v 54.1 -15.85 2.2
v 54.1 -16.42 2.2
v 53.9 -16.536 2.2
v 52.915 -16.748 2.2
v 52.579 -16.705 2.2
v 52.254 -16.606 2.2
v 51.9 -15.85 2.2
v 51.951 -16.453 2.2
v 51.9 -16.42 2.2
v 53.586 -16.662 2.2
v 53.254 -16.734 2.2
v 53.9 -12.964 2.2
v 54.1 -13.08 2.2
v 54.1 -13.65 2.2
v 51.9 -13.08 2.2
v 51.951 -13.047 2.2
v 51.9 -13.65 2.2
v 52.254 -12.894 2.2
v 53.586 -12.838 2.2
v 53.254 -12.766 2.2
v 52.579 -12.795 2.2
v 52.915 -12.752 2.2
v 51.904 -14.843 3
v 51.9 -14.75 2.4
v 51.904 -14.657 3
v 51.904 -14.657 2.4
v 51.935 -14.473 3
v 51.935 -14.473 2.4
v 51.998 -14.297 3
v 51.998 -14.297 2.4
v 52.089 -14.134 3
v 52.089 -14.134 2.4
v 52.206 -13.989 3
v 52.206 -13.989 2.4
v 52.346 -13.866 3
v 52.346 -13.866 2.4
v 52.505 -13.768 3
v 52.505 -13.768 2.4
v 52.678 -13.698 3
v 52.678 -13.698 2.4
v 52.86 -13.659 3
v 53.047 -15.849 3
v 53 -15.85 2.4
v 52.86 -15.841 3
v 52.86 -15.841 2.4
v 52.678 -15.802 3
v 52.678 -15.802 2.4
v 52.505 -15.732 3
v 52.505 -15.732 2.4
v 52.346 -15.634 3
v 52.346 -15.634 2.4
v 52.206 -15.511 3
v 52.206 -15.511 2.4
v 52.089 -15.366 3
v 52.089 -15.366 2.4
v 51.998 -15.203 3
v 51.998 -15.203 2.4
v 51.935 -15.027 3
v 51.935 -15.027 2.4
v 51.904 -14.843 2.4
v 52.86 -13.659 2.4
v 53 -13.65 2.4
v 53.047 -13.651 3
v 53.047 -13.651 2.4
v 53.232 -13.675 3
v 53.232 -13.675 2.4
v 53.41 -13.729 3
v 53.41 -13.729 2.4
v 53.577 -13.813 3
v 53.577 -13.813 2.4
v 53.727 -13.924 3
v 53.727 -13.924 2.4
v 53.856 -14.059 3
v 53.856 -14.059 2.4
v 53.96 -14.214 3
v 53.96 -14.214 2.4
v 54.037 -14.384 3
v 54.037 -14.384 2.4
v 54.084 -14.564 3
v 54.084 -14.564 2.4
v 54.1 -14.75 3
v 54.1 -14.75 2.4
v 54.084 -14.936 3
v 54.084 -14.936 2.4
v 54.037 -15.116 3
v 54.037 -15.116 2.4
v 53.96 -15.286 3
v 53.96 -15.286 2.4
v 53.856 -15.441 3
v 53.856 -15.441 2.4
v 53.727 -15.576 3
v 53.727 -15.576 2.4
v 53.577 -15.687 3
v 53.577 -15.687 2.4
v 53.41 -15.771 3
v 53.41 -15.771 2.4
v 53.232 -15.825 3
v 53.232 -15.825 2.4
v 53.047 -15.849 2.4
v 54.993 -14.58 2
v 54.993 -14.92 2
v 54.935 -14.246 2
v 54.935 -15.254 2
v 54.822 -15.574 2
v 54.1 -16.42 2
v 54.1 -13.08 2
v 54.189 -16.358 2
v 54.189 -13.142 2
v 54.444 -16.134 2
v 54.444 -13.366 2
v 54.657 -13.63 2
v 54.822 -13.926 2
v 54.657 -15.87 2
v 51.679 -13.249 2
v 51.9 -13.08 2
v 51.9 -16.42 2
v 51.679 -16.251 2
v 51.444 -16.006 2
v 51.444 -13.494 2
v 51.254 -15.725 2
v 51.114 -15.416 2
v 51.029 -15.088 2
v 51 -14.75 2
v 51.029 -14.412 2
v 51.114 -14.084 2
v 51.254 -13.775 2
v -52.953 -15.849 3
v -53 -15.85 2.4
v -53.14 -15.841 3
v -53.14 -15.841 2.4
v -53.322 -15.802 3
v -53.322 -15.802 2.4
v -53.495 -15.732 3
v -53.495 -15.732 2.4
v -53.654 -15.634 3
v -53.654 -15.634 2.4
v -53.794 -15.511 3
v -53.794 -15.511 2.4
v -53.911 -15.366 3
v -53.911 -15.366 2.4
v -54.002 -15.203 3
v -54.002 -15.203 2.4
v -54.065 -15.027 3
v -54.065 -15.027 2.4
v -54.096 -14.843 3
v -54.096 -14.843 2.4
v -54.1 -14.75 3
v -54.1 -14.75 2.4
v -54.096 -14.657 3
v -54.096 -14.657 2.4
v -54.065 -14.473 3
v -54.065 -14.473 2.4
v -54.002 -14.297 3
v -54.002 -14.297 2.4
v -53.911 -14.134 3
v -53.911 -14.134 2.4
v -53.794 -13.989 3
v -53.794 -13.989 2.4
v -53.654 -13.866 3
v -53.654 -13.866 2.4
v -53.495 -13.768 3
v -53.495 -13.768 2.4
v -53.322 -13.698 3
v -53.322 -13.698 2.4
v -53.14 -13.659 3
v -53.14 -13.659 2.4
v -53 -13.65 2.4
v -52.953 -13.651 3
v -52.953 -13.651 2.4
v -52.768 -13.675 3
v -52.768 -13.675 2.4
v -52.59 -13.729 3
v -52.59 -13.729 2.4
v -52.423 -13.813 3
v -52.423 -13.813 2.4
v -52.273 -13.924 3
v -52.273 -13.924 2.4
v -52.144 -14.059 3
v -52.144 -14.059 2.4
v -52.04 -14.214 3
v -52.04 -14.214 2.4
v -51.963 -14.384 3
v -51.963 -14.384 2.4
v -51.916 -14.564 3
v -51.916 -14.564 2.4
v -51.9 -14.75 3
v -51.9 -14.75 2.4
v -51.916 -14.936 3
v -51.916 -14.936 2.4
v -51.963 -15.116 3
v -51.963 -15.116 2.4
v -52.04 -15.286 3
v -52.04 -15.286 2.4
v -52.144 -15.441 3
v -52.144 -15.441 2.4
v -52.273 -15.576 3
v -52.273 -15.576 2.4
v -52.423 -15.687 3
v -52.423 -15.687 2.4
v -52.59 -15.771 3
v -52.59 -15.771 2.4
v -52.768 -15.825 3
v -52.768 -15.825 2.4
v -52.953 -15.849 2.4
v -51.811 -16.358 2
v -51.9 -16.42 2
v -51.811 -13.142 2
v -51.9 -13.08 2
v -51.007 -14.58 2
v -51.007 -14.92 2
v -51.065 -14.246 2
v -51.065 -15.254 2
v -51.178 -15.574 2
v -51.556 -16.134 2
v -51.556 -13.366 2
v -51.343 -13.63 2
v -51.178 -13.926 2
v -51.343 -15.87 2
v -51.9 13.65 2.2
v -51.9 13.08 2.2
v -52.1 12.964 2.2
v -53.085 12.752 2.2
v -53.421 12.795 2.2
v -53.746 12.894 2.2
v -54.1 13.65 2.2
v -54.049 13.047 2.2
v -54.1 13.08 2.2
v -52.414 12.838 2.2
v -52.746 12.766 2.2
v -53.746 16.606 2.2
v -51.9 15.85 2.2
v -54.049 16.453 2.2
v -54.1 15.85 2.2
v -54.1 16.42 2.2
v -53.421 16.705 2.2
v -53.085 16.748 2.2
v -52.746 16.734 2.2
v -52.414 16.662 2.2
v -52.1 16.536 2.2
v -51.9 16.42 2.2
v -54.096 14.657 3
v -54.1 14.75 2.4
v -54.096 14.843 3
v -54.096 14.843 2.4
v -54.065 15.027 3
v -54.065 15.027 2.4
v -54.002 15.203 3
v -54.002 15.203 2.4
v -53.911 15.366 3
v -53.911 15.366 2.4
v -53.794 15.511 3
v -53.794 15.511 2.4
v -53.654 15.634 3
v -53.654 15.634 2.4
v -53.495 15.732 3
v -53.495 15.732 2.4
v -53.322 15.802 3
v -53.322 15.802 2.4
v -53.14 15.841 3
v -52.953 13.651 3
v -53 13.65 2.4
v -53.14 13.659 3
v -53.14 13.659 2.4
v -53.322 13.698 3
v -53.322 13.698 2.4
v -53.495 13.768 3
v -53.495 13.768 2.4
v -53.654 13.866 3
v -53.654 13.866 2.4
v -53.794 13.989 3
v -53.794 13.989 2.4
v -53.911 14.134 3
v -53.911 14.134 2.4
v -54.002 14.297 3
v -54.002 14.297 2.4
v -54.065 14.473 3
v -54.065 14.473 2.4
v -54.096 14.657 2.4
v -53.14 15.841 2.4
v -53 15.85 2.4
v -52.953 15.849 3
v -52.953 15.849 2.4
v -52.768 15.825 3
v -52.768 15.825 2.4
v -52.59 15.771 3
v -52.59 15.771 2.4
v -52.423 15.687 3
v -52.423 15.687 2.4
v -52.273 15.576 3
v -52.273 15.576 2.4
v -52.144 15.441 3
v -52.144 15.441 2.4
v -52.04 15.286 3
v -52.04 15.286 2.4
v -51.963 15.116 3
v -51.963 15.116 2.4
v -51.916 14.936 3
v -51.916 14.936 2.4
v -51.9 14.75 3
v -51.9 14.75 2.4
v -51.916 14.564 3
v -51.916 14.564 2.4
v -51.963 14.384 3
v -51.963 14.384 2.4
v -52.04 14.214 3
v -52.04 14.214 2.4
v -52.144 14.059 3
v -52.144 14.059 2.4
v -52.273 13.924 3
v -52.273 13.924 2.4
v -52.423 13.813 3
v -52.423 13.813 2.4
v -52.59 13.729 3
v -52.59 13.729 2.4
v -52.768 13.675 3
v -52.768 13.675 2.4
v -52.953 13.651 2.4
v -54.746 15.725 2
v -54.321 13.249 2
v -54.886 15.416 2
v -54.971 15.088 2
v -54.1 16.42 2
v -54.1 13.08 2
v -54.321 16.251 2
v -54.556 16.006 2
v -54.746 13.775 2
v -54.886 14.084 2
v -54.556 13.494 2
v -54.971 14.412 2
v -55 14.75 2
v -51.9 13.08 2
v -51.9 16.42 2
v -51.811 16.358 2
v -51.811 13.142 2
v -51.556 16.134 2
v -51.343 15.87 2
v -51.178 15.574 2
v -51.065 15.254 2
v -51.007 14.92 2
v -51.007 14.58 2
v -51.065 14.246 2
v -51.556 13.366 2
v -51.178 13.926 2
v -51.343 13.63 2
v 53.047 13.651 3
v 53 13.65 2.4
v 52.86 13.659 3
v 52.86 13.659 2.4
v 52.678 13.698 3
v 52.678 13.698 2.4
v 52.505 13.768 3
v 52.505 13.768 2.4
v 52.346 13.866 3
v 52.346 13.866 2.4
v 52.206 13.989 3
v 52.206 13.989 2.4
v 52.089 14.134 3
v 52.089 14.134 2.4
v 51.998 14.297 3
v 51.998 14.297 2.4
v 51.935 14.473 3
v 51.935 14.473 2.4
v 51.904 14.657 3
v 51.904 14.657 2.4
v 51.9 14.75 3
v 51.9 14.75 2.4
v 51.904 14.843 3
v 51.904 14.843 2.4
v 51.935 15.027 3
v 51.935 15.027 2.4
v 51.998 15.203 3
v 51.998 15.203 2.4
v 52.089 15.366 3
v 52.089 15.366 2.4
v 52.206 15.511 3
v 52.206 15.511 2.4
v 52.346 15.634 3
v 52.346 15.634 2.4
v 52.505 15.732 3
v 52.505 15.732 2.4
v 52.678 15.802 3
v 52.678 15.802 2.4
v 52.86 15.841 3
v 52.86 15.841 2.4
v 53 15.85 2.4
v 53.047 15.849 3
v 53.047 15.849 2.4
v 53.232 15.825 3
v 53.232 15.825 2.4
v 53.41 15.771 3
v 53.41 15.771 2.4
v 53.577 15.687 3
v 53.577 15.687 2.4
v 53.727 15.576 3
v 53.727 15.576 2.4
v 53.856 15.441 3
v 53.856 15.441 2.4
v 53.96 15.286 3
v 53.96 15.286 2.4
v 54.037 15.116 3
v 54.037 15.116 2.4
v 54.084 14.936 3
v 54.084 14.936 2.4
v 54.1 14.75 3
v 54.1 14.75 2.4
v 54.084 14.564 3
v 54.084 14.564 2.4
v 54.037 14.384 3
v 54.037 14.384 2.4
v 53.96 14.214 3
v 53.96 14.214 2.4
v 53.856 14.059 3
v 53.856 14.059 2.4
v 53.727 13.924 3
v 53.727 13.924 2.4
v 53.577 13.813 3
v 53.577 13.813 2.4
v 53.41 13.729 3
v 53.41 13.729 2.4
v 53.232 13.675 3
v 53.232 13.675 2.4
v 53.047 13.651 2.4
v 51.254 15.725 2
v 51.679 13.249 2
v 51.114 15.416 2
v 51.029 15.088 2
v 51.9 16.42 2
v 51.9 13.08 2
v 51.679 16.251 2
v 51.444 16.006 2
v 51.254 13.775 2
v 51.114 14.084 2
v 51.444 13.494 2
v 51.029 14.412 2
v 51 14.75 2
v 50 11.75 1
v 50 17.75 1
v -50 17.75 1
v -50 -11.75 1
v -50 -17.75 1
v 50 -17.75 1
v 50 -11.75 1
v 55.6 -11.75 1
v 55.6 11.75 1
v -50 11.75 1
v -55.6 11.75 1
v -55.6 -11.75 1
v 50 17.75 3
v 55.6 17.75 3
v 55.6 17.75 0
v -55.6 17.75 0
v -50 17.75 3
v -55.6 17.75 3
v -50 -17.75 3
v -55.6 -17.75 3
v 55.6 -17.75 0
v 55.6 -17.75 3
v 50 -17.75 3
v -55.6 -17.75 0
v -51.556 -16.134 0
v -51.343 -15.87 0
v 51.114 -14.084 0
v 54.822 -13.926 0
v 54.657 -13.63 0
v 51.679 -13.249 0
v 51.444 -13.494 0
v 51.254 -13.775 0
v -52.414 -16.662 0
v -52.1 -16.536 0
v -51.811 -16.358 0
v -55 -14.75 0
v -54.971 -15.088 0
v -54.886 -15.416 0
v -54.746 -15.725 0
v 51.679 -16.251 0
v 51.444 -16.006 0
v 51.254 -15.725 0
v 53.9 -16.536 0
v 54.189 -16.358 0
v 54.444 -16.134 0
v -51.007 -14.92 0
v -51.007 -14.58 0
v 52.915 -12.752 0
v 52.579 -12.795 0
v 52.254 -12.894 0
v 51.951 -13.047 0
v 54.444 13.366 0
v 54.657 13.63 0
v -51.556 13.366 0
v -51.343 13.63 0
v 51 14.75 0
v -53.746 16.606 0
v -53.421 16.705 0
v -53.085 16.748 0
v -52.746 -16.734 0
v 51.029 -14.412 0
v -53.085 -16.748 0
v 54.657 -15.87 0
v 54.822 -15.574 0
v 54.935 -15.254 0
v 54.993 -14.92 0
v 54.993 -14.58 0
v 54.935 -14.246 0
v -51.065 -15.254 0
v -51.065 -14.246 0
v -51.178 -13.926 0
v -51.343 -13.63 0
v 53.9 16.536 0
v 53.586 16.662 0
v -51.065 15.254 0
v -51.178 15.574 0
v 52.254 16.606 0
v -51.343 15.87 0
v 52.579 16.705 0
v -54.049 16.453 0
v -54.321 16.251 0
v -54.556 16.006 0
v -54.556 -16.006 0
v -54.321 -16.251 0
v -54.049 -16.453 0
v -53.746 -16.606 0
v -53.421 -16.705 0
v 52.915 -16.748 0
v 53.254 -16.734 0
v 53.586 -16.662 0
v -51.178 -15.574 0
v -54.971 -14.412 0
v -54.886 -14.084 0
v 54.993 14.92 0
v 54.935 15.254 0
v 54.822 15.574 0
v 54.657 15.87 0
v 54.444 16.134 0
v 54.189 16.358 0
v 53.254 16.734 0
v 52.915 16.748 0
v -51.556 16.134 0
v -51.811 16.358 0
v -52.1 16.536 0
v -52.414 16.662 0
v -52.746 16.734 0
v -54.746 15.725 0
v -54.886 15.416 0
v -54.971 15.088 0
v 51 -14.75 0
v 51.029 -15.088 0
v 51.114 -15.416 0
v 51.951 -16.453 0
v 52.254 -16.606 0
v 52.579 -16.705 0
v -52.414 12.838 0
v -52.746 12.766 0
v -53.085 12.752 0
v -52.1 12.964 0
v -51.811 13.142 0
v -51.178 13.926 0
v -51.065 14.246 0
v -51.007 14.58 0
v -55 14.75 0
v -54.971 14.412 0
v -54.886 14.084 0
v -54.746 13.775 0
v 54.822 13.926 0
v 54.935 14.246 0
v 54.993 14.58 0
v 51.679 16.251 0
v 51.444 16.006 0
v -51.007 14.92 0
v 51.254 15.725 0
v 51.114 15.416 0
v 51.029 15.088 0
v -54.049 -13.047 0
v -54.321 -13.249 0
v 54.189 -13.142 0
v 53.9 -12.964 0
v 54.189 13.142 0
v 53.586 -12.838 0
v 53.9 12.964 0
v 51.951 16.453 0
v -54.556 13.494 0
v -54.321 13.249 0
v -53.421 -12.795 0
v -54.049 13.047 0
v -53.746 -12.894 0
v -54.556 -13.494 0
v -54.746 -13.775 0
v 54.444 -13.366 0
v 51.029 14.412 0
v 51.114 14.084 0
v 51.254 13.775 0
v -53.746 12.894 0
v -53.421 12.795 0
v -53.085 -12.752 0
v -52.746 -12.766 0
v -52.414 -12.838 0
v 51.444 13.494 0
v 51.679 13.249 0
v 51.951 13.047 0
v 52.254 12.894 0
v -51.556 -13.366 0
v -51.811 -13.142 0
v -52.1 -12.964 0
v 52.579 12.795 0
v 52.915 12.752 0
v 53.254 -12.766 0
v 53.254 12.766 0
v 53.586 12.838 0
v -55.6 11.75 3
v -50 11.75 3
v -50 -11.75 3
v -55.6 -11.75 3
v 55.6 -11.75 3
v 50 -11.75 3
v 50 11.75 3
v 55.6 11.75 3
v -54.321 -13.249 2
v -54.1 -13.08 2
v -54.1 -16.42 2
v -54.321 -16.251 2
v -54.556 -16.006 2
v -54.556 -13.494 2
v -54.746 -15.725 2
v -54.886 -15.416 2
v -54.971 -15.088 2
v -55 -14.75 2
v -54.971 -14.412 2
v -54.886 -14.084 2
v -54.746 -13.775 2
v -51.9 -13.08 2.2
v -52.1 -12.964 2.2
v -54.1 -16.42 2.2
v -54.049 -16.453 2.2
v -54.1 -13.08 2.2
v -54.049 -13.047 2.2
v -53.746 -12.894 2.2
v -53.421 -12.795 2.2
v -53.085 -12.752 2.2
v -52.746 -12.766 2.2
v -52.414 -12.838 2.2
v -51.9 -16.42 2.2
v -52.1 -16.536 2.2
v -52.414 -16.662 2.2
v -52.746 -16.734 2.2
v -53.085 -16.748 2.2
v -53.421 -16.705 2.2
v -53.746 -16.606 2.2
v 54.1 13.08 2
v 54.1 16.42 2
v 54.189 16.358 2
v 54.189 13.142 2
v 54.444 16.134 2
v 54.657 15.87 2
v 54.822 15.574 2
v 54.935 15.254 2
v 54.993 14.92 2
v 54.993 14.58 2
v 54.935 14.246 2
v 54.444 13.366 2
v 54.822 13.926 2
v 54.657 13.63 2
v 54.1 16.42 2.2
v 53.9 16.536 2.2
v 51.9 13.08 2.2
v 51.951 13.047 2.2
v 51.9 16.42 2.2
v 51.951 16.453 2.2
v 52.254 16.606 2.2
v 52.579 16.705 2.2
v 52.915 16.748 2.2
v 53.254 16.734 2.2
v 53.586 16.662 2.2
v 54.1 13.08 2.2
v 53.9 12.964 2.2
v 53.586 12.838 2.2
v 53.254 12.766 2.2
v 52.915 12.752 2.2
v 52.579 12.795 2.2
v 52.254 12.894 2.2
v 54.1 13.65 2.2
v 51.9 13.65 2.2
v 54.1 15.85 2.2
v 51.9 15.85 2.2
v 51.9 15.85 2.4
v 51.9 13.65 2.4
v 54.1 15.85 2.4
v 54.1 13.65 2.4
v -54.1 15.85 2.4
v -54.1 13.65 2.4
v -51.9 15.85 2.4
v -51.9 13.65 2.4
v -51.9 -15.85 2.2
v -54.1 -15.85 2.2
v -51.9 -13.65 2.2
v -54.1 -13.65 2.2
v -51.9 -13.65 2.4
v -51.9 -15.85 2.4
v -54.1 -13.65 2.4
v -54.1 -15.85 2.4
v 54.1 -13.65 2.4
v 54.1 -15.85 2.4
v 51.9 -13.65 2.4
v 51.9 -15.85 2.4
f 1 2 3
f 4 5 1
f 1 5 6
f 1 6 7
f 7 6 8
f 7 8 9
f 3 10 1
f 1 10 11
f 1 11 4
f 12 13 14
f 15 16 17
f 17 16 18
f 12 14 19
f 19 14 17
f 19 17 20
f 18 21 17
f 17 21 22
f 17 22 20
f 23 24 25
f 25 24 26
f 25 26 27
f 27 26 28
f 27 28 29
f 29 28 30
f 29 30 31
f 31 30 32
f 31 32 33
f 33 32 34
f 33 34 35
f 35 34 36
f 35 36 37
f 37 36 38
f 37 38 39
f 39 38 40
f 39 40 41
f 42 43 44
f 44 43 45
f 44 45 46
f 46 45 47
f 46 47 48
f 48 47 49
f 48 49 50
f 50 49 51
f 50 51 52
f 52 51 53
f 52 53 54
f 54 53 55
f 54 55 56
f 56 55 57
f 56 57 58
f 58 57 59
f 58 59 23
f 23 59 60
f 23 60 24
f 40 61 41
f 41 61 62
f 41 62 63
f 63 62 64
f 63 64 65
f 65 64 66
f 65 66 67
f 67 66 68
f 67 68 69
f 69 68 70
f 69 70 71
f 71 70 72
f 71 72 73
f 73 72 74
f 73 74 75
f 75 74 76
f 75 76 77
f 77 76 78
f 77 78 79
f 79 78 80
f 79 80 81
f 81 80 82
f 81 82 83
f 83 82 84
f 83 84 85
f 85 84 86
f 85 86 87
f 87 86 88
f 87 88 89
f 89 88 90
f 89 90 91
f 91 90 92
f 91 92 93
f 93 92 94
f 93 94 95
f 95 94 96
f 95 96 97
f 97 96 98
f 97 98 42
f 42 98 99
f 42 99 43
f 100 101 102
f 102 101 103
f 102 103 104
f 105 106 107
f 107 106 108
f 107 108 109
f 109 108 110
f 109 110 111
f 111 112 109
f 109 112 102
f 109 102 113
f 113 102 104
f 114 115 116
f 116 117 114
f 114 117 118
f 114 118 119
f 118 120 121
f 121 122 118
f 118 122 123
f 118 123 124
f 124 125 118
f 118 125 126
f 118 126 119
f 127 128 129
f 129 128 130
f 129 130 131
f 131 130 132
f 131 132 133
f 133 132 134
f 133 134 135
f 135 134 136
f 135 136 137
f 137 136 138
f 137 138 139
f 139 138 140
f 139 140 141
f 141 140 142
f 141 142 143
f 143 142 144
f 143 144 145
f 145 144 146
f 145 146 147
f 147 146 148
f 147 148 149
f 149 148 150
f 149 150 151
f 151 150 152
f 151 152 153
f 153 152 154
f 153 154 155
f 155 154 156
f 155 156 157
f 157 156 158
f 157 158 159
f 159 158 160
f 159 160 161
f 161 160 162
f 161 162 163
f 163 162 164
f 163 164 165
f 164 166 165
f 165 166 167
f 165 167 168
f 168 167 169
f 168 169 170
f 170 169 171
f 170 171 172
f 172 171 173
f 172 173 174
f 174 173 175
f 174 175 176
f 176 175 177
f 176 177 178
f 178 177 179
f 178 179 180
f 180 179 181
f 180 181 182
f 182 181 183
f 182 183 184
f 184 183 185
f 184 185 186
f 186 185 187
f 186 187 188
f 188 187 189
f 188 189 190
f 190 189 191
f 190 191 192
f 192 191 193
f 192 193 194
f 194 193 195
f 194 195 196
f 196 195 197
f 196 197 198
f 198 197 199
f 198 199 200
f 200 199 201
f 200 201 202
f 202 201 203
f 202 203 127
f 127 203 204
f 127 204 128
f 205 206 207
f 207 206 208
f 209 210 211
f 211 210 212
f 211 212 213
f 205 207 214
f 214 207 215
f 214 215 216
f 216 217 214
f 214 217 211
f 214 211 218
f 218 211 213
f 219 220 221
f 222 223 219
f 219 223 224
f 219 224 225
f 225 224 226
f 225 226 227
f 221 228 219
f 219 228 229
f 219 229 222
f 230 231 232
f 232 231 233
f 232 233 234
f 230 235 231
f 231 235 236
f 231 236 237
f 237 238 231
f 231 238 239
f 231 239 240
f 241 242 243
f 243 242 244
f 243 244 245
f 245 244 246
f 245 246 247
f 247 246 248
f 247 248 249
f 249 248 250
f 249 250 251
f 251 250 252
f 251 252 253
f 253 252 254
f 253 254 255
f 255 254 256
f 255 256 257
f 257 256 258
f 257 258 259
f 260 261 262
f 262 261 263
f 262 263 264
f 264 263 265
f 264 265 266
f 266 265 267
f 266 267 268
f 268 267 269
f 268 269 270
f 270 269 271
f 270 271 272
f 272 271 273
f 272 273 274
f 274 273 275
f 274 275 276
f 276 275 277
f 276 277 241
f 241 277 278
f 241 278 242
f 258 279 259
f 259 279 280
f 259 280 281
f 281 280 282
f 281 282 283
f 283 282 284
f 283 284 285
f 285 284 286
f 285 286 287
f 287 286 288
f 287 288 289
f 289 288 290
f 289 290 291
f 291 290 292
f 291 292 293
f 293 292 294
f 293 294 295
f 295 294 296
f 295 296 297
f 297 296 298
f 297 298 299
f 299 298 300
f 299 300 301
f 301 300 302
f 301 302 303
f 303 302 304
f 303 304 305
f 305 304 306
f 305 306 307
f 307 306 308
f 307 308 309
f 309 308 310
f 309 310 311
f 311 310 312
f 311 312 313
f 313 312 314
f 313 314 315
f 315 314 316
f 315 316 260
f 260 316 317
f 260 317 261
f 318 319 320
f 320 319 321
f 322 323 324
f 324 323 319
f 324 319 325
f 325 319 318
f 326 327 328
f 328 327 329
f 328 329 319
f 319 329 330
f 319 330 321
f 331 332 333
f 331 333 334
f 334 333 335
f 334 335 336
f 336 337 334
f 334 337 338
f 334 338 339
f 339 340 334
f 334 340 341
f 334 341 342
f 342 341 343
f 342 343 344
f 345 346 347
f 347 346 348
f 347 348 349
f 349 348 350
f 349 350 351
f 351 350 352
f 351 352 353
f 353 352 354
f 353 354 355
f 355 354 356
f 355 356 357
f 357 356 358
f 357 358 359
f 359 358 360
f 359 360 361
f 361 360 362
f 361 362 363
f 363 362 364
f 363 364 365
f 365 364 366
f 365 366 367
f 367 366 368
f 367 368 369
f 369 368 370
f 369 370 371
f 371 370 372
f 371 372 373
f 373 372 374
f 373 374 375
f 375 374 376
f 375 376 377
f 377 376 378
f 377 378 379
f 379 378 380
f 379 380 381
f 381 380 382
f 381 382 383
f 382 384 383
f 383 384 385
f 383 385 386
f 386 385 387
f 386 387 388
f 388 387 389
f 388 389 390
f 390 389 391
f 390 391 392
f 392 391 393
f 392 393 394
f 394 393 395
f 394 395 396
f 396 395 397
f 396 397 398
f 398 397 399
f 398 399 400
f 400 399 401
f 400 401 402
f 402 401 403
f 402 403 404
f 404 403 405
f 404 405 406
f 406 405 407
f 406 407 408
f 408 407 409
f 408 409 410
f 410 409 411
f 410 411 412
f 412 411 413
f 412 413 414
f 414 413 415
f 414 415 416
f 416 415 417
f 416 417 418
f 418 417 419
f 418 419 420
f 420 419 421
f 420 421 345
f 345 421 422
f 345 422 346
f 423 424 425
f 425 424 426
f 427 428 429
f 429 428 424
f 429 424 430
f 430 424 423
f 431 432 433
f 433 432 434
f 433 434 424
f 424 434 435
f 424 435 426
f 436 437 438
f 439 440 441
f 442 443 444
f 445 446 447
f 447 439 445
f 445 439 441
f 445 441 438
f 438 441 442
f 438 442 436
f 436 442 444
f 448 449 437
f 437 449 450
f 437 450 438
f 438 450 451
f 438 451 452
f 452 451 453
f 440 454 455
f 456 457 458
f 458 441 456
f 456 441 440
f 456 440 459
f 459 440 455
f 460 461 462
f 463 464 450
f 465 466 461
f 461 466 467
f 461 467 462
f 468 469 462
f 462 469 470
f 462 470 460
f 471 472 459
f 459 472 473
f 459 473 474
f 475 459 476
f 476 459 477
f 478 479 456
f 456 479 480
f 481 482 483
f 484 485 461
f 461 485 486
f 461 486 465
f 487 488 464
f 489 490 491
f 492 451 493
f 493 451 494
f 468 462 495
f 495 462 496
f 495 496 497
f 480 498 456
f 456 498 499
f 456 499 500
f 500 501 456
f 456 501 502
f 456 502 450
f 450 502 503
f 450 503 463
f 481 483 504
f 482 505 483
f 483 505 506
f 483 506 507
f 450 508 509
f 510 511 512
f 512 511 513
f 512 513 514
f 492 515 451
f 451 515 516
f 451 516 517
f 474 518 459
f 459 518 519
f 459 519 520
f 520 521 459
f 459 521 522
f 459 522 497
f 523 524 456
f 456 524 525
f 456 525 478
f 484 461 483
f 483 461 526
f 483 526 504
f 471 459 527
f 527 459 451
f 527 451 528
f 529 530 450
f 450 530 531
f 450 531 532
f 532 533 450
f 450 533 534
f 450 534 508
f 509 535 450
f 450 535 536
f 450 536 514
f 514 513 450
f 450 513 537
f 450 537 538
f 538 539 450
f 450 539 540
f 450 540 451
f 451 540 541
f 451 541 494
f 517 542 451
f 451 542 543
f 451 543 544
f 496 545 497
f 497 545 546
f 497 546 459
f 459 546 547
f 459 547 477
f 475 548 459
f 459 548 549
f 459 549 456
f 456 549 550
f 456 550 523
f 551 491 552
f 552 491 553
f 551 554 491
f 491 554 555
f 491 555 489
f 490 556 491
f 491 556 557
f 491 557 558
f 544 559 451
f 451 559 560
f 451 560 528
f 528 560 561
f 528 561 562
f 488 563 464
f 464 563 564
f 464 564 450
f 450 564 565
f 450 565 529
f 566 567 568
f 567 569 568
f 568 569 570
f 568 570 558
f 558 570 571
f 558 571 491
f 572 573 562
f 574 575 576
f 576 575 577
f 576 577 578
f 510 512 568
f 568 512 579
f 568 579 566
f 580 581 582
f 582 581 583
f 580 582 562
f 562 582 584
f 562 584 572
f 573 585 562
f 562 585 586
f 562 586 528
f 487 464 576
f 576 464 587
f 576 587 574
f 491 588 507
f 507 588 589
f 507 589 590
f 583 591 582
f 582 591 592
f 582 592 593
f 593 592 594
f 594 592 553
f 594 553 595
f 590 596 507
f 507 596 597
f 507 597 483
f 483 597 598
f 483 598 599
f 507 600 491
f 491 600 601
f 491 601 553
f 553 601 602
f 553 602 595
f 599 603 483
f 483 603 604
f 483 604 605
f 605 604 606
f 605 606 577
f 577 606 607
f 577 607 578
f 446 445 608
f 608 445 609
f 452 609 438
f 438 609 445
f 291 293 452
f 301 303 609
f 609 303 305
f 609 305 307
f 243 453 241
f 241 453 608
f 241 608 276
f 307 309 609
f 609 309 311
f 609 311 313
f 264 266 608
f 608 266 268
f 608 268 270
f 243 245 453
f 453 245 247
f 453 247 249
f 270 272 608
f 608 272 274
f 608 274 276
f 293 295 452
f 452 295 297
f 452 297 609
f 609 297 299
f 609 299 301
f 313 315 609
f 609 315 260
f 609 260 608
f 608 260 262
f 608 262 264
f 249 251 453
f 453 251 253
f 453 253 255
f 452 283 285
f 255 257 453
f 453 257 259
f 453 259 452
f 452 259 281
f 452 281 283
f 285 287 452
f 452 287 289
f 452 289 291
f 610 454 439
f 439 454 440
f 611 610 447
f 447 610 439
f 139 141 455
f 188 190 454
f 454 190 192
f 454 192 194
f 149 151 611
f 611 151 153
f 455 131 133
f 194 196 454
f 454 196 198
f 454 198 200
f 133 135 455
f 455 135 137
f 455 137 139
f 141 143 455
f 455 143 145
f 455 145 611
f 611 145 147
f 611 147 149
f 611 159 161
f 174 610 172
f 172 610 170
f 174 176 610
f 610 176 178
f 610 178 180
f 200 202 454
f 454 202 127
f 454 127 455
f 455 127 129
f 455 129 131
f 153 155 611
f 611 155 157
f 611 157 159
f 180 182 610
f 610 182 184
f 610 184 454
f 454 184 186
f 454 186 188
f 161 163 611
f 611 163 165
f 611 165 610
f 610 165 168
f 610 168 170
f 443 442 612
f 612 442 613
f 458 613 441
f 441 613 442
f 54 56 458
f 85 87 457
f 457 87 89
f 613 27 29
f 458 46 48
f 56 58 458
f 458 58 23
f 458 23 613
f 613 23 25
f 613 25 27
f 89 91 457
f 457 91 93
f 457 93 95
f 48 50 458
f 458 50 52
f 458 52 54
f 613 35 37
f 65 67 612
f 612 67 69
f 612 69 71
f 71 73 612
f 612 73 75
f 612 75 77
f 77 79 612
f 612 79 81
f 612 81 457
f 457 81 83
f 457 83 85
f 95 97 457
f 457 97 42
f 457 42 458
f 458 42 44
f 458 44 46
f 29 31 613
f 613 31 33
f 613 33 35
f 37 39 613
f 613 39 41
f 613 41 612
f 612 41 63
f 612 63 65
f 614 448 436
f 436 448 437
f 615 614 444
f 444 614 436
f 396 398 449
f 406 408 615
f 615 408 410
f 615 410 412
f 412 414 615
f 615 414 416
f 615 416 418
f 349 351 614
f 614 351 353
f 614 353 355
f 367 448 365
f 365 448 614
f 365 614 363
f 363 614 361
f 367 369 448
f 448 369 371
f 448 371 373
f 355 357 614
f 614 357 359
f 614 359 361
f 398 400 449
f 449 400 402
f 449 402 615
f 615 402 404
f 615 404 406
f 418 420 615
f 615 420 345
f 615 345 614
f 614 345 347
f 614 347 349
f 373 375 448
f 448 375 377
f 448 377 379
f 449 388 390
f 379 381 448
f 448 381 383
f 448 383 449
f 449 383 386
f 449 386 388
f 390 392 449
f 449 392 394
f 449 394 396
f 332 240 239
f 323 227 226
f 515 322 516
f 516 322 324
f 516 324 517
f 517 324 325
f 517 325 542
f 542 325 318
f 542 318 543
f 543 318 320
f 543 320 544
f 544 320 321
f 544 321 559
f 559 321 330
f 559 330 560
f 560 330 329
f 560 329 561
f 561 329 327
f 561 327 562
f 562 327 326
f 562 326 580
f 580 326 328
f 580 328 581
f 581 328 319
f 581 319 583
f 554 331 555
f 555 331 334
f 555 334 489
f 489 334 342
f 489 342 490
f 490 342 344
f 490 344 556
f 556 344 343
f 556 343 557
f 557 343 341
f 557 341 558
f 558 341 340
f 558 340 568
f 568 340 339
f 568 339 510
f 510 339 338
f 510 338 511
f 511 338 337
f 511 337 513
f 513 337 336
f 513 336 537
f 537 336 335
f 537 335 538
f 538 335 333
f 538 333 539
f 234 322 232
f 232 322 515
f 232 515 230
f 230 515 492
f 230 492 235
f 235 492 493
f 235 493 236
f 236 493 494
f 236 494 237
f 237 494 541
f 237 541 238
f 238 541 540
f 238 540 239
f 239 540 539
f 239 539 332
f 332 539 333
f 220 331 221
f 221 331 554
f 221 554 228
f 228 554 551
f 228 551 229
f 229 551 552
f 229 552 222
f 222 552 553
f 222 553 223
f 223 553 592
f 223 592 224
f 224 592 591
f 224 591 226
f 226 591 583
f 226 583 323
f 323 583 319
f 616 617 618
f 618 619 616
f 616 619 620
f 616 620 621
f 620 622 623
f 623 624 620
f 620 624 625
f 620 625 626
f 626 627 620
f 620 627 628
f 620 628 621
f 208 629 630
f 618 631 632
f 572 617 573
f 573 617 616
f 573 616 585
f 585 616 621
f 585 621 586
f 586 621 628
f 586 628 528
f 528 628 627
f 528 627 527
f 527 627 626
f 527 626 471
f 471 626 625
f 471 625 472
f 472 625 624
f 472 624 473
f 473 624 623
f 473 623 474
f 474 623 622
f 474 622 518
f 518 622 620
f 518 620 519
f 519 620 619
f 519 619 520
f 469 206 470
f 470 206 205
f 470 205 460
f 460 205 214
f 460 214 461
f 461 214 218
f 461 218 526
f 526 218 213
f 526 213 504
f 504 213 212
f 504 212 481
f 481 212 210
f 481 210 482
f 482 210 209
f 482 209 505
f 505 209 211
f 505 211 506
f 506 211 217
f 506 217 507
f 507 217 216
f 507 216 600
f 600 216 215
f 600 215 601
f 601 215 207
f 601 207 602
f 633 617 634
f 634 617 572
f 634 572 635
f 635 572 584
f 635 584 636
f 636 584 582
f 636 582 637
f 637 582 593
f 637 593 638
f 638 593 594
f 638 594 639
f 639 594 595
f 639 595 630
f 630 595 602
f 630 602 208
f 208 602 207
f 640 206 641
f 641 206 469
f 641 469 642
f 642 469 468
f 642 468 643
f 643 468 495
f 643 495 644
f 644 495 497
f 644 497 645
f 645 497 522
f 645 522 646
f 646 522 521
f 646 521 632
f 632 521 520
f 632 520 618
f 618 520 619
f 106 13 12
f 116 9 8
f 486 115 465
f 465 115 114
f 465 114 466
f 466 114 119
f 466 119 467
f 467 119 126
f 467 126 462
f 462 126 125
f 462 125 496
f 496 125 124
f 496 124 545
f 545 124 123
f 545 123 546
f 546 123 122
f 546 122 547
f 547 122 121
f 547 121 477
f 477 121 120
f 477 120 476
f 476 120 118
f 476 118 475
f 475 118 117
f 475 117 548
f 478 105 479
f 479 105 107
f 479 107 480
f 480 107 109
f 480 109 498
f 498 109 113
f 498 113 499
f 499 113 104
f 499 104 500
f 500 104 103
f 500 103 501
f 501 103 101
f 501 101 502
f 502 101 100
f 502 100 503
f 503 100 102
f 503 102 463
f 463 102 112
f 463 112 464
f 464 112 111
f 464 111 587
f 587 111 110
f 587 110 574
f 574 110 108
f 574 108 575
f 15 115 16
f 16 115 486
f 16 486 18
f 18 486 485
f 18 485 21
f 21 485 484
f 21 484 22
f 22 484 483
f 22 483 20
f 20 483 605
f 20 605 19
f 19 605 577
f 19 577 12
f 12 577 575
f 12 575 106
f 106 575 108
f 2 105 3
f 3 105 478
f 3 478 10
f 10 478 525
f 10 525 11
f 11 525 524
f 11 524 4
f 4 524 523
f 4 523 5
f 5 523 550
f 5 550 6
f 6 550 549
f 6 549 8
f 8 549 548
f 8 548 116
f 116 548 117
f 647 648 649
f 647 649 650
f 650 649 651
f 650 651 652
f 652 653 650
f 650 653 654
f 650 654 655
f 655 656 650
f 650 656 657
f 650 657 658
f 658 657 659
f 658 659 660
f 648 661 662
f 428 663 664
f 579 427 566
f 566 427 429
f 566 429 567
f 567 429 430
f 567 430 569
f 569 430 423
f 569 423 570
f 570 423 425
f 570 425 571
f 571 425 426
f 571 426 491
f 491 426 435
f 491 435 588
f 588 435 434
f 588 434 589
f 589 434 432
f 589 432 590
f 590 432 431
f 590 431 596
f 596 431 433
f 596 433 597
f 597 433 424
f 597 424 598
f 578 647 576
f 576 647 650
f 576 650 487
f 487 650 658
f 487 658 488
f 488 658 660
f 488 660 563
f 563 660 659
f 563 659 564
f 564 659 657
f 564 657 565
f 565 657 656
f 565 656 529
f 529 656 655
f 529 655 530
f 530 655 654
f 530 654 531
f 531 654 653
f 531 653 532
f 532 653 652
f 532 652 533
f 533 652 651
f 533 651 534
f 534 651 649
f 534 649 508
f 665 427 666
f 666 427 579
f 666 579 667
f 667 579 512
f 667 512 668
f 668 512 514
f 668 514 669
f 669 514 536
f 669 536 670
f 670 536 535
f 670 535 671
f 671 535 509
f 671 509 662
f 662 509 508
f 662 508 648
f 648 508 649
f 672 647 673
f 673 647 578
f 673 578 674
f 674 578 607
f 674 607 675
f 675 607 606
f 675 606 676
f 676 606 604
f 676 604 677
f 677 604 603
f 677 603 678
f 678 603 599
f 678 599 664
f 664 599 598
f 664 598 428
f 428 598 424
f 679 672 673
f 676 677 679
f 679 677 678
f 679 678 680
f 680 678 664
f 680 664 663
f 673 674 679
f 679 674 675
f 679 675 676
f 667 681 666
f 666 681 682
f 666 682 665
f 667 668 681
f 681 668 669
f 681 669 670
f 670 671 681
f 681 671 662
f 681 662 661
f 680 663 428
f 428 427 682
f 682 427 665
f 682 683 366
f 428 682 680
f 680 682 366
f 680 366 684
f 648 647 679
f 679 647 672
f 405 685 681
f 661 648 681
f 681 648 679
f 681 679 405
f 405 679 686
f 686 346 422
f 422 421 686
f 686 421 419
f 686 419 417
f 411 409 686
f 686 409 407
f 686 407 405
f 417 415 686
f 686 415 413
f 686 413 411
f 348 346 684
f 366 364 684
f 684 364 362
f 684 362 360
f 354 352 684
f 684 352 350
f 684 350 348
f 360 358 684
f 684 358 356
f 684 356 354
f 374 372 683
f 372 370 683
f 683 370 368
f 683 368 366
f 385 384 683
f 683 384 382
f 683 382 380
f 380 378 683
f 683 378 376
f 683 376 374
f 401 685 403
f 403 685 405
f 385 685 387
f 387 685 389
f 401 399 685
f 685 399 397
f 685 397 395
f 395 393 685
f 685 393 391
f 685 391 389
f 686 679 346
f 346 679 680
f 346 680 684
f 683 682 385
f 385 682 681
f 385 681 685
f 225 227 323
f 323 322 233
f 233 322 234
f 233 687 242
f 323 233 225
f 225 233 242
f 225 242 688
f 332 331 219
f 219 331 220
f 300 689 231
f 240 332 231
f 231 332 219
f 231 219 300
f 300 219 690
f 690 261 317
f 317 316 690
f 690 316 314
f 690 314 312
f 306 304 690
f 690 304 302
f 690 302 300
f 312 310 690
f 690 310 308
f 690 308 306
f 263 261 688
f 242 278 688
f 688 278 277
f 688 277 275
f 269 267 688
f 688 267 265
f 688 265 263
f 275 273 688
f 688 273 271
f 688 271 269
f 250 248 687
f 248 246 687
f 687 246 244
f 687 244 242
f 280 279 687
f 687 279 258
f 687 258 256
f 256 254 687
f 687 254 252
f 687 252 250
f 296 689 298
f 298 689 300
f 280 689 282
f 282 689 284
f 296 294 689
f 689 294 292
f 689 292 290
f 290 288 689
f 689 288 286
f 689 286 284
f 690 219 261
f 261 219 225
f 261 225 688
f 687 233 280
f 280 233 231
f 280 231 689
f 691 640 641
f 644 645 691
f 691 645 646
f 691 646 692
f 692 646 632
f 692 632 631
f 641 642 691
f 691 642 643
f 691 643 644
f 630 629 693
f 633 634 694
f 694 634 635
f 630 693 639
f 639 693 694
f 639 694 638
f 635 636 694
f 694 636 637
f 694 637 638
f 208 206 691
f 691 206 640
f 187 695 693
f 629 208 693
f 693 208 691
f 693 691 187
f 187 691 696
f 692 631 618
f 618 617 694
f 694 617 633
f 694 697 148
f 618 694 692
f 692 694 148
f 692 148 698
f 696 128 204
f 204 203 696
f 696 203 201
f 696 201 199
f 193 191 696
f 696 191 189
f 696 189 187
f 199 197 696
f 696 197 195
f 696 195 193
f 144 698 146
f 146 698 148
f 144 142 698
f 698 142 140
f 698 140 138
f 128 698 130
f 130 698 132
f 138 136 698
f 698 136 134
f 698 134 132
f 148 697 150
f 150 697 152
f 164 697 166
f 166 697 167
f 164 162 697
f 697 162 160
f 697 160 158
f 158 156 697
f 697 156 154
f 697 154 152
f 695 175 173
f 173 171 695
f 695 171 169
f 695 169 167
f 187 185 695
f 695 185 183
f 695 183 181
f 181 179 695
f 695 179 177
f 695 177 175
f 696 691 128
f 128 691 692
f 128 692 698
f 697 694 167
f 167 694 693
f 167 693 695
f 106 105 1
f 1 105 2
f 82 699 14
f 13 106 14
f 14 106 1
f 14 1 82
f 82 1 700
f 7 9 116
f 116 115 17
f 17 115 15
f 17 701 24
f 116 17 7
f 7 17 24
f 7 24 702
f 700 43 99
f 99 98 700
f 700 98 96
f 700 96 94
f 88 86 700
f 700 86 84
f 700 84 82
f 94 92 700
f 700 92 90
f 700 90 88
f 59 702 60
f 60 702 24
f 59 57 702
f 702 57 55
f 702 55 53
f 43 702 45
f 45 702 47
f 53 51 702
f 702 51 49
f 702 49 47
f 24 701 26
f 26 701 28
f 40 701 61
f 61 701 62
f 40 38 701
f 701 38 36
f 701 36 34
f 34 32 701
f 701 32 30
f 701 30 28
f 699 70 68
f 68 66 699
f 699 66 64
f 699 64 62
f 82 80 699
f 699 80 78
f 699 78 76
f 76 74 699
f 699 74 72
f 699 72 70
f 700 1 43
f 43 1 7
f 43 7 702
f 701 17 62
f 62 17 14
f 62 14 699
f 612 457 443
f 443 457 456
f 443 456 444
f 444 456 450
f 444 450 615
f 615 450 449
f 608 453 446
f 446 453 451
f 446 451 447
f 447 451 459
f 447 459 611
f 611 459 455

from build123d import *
from build123d.topology import SkipClean

# Parameters (mm, degrees)
SKETCH1_W               = 112
SKETCH1_H               = 35.5
BOSS_EXTRUDE1_DEPTH     = 1
SKETCH2_W               = 6
SKETCH2_H               = 6
BOSS_EXTRUDE2_DEPTH     = 2
SKETCH3_R               = 1.1
CUT_EXTRUDE1_DEPTH      = 59.822295943
SKETCH4_R               = 2
CUT_EXTRUDE2_DEPTH      = 2
CUT_EXTRUDE3_DEPTH      = 0.2
SKETCH6_W               = 2.2
SKETCH6_H               = 2.2
CUT_EXTRUDE4_DEPTH      = 0.2
MIRROR2_COPY_1_DEPTH    = 0.2
MIRROR2_COPY_2_SKETCH_W = 2.2
MIRROR2_COPY_2_SKETCH_H = 2.2
MIRROR2_COPY_2_DEPTH    = 0.2
SKETCH7_W               = 0.4
SKETCH7_H               = 35.5
CUT_EXTRUDE5_DEPTH      = 59.822295943


with BuildPart() as part:
    # Sketch1 → Boss-Extrude1 (new body)
    with BuildSketch(Plane.XY):
        Rectangle(SKETCH1_W, SKETCH1_H)
    extrude(amount=BOSS_EXTRUDE1_DEPTH)

    # Sketch2 → Boss-Extrude2 (add)
    with BuildSketch(Plane.XY.offset(1)):
        with Locations((-53, 14.75)):
            Rectangle(SKETCH2_W, SKETCH2_H)
        with Locations((-53, -14.75)):
            Rectangle(SKETCH2_W, SKETCH2_H)
        with Locations((53, -14.75)):
            Rectangle(SKETCH2_W, SKETCH2_H)
        with Locations((53, 14.75)):
            Rectangle(SKETCH2_W, SKETCH2_H)
    extrude(amount=BOSS_EXTRUDE2_DEPTH)

    # Sketch3 → Cut-Extrude1 (cut, through all)
    with BuildSketch(Plane.XY.offset(3)):
        with Locations((-53, 14.75)):
            Circle(SKETCH3_R)
        with Locations(Location((-53, -14.75, 0), (0, 0, 180))):
            Circle(SKETCH3_R)
        with Locations((53, -14.75)):
            Circle(SKETCH3_R)
        with Locations(Location((53, 14.75, 0), (0, 0, 180))):
            Circle(SKETCH3_R)
    extrude(amount=-CUT_EXTRUDE1_DEPTH, mode=Mode.SUBTRACT)

    # Sketch4 → Cut-Extrude2 (cut)
    with BuildSketch(Plane(origin=(0, 0, 0), x_dir=(-1, 0, 0), z_dir=(0, 0, -1))):
        with Locations((-53, 14.75)):
            Circle(SKETCH4_R)
        with Locations((-53, -14.75)):
            Circle(SKETCH4_R)
        with Locations((53, 14.75)):
            Circle(SKETCH4_R)
        with Locations((53, -14.75)):
            Circle(SKETCH4_R)
    extrude(amount=-CUT_EXTRUDE2_DEPTH, mode=Mode.SUBTRACT)

    # Sketch5 → Cut-Extrude3 (cut)
    with SkipClean():  # the faces are left unmerged after this step: merging them gives an invalid solid
        with BuildSketch(Plane(origin=(0, 0, 2), x_dir=(-1, 0, 0), z_dir=(0, 0, -1))):
            with BuildLine():
                Line((-54.1, 13.079670691), (-54.1, 16.420329309))
                ThreePointArc((-54.1, 16.420329309), (-53, 16.75), (-51.9, 16.420329309))
                Line((-51.9, 16.420329309), (-51.9, 13.079670691))
                ThreePointArc((-51.9, 13.079670691), (-53, 12.75), (-54.1, 13.079670691))
            make_face()
        cut_extrude3 = extrude(amount=-CUT_EXTRUDE3_DEPTH, mode=Mode.SUBTRACT)

    # Sketch6 → Cut-Extrude4 (cut)
    with SkipClean():  # the faces are left unmerged after this step: merging them gives an invalid solid
        with BuildSketch(Plane(origin=(0, 0, 2.2), x_dir=(-1, 0, 0), z_dir=(0, 0, -1))):
            with Locations((-53, 14.75)):
                Rectangle(SKETCH6_W, SKETCH6_H)
        cut_extrude4 = extrude(amount=-CUT_EXTRUDE4_DEPTH, mode=Mode.SUBTRACT)

    # Mirror1: Cut-Extrude3, Cut-Extrude4 across plane
    with SkipClean():  # the faces are left unmerged after this step: merging them gives an invalid solid
        add(cut_extrude3.mirror(Plane(origin=(0, 0, 0), x_dir=(0, 0, 1), z_dir=(1, 0, 0))), mode=Mode.SUBTRACT)
        add(cut_extrude4.mirror(Plane(origin=(0, 0, 0), x_dir=(0, 0, 1), z_dir=(1, 0, 0))), mode=Mode.SUBTRACT)

    # Mirror2: Cut-Extrude3, Cut-Extrude4 across plane
    with SkipClean():  # the faces are left unmerged after this step: merging them gives an invalid solid
        add(cut_extrude3.mirror(Plane.ZX), mode=Mode.SUBTRACT)
        add(cut_extrude4.mirror(Plane.ZX), mode=Mode.SUBTRACT)

    # Mirror2 copy 1 sketch → Mirror2 copy 1 (cut)
    with SkipClean():  # the faces are left unmerged after this step: merging them gives an invalid solid
        with BuildSketch(Plane(origin=(0, 0, 2), x_dir=(1, 0, 0), z_dir=(0, 0, -1))):
            with BuildLine():
                Line((-54.1, 13.079670691), (-54.1, 16.420329309))
                ThreePointArc((-54.1, 16.420329309), (-53, 16.75), (-51.9, 16.420329309))
                Line((-51.9, 16.420329309), (-51.9, 13.079670691))
                ThreePointArc((-51.9, 13.079670691), (-53, 12.75), (-54.1, 13.079670691))
            make_face()
        extrude(amount=-MIRROR2_COPY_1_DEPTH, mode=Mode.SUBTRACT)

    # Mirror2 copy 2 sketch → Mirror2 copy 2 (cut)
    with SkipClean():  # the faces are left unmerged after this step: merging them gives an invalid solid
        with BuildSketch(Plane(origin=(0, 0, 2.2), x_dir=(1, 0, 0), z_dir=(0, 0, -1))):
            with Locations((-53, 14.75)):
                Rectangle(MIRROR2_COPY_2_SKETCH_W, MIRROR2_COPY_2_SKETCH_H)
        extrude(amount=-MIRROR2_COPY_2_DEPTH, mode=Mode.SUBTRACT)

    # Sketch7 → Cut-Extrude5 (cut, through all)
    with SkipClean():  # the faces are left unmerged after this step: merging them gives an invalid solid
        with BuildSketch(Plane(origin=(0, 0, 0), x_dir=(-1, 0, 0), z_dir=(0, 0, -1))):
            with Locations((-55.8, 0)):
                Rectangle(SKETCH7_W, SKETCH7_H)
            with Locations((55.8, 0)):
                Rectangle(SKETCH7_W, SKETCH7_H)
        extrude(amount=-CUT_EXTRUDE5_DEPTH, mode=Mode.SUBTRACT)


solid = part.part
